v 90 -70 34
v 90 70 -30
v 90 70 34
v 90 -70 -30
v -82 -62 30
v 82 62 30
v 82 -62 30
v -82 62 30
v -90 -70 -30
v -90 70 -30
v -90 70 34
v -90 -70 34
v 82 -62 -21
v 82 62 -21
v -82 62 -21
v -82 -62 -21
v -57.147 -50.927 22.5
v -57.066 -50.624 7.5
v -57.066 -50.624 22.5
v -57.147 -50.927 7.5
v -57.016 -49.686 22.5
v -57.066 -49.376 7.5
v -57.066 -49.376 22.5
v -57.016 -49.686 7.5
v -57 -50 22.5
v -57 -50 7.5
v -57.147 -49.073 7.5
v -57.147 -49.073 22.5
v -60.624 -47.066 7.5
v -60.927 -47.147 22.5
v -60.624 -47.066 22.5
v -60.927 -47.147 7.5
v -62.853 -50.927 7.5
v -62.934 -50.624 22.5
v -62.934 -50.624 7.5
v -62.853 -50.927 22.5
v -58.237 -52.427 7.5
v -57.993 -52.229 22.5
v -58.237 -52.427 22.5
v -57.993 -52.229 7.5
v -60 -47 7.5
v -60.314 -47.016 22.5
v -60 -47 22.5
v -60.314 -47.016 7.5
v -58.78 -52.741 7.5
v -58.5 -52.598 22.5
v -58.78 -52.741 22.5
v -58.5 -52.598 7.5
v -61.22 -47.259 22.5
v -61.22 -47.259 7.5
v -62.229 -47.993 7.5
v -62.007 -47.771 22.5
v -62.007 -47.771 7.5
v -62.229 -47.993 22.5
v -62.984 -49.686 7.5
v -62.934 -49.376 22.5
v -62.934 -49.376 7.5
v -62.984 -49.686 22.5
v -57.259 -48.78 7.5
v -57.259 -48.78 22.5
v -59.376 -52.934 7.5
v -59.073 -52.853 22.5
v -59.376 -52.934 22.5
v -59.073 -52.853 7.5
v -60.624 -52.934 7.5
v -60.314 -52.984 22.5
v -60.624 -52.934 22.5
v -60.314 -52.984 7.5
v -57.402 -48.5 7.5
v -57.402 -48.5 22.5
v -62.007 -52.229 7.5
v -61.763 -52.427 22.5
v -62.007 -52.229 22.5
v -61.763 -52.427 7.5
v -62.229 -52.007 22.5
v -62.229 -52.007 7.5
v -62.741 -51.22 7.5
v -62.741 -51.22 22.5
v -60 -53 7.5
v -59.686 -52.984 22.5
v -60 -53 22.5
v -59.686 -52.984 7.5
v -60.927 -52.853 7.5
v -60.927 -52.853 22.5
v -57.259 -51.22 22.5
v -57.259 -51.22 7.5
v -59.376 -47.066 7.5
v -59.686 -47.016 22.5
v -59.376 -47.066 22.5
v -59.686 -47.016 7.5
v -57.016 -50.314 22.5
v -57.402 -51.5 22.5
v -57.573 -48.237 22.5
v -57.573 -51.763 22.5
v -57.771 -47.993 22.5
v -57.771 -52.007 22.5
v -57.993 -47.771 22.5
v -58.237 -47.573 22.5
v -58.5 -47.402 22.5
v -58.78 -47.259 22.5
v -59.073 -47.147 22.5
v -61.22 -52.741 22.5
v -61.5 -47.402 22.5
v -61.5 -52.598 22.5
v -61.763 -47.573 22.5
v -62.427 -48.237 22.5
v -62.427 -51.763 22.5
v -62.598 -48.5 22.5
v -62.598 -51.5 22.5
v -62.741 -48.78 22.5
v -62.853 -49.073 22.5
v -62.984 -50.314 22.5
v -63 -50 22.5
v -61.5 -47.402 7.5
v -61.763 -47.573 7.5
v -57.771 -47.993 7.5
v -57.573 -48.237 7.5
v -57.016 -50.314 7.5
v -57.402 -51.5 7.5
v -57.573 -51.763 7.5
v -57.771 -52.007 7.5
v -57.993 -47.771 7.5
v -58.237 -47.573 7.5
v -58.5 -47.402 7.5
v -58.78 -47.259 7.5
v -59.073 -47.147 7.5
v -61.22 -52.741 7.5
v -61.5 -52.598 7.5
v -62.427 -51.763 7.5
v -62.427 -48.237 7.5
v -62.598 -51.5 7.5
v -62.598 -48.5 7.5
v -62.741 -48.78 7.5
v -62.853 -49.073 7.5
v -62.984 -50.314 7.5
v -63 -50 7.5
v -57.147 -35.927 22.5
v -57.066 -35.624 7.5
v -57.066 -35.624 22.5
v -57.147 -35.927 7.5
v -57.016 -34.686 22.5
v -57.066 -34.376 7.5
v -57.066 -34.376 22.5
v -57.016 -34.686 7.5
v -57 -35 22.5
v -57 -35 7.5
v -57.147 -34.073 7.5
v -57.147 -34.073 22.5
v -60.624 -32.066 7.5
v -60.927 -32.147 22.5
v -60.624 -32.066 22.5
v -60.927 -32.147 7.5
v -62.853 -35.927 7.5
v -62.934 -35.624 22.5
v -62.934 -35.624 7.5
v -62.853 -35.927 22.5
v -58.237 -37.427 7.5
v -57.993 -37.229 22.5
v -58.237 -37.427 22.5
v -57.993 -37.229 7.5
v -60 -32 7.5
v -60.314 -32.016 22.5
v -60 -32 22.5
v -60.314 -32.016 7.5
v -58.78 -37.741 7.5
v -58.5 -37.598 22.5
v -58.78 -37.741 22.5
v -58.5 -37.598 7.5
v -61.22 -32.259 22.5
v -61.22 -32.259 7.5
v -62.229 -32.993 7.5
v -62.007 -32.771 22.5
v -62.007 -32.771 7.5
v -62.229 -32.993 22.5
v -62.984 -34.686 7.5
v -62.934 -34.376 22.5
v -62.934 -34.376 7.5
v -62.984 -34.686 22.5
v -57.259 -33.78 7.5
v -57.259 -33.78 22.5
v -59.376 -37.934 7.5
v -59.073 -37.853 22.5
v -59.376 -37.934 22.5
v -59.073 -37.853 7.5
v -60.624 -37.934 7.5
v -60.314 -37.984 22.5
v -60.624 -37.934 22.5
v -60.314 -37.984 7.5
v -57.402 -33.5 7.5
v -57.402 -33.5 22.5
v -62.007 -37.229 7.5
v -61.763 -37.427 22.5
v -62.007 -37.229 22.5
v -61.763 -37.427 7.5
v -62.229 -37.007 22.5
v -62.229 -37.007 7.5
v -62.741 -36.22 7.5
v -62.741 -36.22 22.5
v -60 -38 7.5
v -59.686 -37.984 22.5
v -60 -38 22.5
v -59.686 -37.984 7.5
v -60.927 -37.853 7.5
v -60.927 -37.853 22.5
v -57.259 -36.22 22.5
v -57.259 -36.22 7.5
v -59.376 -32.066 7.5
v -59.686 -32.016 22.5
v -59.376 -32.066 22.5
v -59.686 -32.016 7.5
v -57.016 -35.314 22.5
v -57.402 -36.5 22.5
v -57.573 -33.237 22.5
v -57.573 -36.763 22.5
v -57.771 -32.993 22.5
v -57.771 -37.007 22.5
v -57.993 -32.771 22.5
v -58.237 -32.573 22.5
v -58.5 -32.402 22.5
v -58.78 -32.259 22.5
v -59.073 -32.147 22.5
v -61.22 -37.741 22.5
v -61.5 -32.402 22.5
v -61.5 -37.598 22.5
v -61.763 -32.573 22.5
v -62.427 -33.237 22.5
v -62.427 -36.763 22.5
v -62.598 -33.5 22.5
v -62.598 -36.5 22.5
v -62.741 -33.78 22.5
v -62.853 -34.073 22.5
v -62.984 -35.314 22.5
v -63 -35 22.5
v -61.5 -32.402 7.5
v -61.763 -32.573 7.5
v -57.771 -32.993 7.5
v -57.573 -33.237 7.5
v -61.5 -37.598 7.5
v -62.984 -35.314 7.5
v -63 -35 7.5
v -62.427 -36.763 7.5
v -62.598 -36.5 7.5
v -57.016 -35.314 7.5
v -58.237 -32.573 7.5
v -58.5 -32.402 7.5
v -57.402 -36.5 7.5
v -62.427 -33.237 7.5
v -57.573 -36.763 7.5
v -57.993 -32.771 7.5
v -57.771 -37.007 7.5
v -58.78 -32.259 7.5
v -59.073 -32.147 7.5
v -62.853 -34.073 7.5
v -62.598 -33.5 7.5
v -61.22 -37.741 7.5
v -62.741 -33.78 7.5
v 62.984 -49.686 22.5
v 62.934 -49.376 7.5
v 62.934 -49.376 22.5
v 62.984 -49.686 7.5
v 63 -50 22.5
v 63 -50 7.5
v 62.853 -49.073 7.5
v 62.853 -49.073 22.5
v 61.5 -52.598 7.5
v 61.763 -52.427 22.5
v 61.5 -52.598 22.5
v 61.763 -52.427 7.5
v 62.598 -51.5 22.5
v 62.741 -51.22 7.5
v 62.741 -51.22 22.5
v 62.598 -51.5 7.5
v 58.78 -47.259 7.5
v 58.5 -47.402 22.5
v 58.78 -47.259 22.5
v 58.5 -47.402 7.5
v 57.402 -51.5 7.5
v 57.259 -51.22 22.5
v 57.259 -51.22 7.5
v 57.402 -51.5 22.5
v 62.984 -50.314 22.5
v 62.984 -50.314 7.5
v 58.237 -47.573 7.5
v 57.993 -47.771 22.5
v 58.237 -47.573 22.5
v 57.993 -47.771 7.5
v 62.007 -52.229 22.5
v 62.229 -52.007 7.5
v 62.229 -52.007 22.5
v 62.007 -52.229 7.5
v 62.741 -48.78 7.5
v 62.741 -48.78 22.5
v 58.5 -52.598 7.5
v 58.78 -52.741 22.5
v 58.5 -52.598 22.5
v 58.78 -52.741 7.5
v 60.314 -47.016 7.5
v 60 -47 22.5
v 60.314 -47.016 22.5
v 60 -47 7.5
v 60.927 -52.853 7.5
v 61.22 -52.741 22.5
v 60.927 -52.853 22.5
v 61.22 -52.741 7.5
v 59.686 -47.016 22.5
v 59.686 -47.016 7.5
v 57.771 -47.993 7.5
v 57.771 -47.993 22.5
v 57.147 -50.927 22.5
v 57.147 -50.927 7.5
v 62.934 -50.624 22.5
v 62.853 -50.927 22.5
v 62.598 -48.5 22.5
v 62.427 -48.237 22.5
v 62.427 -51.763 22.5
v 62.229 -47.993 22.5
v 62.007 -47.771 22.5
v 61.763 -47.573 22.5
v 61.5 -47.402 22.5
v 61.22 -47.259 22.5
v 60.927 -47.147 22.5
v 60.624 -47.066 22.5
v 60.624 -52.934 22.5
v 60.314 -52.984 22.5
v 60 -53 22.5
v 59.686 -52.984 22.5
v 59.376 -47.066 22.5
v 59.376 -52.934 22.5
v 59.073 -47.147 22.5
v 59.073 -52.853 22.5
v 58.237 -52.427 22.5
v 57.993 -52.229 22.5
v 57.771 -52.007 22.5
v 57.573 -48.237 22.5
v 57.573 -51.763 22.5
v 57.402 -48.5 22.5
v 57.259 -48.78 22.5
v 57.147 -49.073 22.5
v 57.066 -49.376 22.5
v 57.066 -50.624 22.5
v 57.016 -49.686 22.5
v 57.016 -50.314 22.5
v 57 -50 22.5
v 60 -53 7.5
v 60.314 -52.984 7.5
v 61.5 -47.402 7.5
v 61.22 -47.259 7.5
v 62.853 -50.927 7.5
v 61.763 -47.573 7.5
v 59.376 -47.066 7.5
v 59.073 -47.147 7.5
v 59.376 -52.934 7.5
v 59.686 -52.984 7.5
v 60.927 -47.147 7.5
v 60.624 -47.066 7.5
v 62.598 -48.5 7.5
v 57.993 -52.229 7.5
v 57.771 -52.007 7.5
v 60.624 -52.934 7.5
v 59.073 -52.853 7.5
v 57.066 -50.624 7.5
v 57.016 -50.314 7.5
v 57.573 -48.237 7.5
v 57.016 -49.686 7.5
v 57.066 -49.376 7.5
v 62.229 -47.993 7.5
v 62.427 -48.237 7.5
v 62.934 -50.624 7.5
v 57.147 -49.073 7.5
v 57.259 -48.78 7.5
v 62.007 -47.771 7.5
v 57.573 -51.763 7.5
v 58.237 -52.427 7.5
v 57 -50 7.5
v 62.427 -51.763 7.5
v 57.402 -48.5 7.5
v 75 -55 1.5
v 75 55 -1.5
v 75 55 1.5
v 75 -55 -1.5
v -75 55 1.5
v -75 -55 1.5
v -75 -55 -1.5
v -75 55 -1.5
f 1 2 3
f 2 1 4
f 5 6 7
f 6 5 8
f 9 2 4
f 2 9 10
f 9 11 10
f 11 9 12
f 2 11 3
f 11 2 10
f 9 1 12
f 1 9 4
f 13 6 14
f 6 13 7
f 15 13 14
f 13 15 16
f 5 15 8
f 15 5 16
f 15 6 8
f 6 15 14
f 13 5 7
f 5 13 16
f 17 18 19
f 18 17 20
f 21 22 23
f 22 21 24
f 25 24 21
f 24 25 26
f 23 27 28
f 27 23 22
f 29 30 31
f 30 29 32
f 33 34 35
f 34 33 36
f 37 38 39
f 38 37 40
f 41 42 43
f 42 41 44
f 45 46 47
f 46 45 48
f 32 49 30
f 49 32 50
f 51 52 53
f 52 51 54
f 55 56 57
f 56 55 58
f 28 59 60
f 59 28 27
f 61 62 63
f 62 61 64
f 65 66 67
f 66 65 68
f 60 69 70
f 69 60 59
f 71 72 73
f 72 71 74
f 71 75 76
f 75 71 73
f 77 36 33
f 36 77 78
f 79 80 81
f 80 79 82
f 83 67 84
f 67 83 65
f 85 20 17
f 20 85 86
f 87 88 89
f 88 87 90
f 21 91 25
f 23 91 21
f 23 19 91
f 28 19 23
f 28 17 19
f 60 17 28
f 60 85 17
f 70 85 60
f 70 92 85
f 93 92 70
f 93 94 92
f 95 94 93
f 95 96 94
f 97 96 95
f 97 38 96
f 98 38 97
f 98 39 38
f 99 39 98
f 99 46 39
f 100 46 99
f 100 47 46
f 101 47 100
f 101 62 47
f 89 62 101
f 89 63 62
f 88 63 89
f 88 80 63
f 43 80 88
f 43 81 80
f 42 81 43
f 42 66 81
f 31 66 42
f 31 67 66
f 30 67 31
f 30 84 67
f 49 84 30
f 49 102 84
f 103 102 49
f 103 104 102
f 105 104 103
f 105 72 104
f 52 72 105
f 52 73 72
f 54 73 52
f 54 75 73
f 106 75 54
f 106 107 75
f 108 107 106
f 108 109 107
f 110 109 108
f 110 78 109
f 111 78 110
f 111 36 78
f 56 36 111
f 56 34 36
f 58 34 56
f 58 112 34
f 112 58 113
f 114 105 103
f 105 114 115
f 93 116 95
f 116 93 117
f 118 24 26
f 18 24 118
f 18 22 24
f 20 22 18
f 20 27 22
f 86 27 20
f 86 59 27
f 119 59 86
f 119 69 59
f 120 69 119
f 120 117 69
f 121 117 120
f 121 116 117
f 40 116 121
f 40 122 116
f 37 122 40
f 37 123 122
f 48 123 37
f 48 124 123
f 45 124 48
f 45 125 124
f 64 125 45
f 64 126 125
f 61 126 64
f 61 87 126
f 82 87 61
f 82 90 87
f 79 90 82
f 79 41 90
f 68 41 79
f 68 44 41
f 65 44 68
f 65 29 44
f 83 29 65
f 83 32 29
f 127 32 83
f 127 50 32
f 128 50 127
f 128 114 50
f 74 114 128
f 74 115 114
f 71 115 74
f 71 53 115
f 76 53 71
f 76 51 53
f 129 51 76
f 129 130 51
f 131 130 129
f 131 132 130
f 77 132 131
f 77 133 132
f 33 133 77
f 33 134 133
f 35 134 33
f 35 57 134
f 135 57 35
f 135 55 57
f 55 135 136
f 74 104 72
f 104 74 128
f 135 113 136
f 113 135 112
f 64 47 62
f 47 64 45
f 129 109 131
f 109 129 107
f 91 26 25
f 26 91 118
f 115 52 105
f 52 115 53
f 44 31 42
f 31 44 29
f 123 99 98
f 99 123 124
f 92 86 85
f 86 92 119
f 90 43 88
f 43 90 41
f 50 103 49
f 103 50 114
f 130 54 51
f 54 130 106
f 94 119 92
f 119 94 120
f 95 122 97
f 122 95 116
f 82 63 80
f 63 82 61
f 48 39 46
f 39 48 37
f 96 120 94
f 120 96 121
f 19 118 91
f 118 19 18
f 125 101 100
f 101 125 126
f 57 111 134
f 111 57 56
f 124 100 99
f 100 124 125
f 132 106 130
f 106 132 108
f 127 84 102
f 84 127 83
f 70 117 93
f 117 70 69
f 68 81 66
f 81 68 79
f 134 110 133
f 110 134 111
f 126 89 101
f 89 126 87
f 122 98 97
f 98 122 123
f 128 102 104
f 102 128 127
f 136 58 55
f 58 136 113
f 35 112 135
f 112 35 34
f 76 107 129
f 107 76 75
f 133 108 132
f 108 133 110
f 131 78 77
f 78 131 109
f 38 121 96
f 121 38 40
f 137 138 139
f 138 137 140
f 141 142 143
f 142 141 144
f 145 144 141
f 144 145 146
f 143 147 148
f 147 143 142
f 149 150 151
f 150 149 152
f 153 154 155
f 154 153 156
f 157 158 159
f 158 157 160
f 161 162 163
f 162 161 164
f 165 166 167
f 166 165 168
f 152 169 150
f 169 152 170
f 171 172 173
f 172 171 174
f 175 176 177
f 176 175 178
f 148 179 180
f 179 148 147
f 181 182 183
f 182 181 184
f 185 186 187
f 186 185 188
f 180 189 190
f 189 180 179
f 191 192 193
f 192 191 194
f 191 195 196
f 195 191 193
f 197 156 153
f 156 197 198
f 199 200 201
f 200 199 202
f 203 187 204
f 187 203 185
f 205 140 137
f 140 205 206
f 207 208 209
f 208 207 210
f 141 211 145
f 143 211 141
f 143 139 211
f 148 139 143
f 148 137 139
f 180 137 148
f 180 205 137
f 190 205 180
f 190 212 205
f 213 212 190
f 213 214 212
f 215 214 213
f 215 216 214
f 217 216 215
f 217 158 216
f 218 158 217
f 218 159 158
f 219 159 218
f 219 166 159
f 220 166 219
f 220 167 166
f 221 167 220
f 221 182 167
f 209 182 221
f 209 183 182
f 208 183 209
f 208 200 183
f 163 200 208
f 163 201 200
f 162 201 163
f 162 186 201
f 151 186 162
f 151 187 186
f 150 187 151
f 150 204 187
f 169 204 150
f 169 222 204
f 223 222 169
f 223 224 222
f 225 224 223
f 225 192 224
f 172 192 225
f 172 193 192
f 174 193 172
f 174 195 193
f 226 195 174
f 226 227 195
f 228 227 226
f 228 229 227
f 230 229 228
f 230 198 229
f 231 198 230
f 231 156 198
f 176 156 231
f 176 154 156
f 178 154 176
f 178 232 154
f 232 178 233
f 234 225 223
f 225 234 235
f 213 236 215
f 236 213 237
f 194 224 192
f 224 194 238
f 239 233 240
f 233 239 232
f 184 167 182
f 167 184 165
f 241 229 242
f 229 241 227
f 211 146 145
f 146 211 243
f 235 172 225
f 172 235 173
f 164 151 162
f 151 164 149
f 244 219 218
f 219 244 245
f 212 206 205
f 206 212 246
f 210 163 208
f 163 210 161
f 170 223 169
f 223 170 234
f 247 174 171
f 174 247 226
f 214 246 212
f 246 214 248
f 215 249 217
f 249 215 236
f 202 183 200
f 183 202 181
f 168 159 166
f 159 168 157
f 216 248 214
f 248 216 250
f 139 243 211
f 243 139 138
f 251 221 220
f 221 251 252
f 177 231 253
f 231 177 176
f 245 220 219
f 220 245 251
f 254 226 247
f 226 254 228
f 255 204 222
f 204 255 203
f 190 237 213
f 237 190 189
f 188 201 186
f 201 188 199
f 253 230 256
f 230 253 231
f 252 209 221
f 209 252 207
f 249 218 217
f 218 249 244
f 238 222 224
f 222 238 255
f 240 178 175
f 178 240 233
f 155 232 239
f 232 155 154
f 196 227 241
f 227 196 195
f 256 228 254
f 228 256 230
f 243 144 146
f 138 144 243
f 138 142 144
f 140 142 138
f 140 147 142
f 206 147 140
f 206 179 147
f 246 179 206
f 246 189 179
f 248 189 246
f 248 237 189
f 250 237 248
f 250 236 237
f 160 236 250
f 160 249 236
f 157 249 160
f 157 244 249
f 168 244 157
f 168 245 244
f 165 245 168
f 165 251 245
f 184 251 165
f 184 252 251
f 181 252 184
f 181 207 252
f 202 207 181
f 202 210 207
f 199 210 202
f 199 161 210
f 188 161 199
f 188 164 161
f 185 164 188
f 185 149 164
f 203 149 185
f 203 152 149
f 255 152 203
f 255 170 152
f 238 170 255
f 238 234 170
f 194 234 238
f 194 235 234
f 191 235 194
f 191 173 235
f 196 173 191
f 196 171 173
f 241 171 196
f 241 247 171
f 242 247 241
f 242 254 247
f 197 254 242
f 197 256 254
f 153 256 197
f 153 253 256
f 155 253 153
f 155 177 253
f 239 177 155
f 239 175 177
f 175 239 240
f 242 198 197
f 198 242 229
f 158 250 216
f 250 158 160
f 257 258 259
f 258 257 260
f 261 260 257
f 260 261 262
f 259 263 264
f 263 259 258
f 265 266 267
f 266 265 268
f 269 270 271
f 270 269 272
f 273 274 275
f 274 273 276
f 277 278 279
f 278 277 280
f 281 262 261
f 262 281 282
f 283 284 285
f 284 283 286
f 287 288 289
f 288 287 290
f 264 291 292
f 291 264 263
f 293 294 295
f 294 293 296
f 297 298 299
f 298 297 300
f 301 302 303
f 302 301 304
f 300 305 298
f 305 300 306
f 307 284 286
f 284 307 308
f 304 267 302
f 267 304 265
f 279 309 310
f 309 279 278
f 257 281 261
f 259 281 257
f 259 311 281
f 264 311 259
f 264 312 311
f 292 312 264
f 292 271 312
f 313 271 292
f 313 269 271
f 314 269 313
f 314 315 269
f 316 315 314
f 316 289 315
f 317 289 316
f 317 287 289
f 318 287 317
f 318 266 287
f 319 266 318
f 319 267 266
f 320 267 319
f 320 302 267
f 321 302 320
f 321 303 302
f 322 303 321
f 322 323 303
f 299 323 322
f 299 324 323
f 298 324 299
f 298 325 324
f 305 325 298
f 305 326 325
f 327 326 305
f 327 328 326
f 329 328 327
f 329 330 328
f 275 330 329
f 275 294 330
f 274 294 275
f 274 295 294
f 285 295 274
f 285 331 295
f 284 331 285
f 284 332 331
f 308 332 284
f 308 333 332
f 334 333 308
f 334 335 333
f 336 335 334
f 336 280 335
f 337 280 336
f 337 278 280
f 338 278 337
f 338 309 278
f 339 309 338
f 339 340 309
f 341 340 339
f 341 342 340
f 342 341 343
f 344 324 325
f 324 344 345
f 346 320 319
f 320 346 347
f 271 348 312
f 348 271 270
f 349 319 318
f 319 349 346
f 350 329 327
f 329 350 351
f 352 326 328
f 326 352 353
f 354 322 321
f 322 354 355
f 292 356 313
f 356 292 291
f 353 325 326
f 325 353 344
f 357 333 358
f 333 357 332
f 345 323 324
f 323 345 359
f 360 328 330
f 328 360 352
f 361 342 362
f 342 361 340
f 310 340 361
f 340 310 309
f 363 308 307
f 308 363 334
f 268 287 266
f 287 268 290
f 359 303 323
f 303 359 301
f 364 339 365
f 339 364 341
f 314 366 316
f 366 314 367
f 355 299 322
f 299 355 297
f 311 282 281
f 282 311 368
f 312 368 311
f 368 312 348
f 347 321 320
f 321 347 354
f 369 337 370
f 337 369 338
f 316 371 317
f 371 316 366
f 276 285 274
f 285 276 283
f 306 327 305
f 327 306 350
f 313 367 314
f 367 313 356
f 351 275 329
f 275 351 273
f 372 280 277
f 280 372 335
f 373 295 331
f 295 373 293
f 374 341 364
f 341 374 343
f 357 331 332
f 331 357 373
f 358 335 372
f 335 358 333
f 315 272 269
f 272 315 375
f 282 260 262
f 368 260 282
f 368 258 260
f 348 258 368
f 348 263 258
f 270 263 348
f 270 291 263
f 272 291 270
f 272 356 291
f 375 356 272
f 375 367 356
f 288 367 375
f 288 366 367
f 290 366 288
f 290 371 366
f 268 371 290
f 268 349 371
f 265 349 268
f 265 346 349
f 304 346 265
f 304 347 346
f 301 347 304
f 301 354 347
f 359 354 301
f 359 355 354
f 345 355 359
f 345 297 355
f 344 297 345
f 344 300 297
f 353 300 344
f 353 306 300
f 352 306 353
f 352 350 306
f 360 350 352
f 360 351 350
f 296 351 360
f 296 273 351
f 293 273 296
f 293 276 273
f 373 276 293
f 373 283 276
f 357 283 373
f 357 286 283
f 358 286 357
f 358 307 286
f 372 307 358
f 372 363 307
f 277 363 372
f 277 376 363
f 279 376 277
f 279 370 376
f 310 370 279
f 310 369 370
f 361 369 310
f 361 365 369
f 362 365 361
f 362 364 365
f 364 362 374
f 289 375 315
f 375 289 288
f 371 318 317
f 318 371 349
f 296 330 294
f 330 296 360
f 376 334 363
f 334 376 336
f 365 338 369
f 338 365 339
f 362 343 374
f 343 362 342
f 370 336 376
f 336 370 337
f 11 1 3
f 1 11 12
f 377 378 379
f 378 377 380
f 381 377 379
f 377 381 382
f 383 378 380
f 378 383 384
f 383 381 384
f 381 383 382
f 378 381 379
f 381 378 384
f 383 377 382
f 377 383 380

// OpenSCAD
// ============================================================================
// DiveGuard heavy-class ROV - rov-platform/HLD.md
// Central Control & PDB Module - power distribution + hydrophone buffer interconnect (Phase 2)
//
// Lifted from the design dialogue originally pasted into BACKLOG.md on main
// (2026-08 batch), preserved verbatim as authored there.
//
// Update 2026-08-08: OpenSCAD IS available in this sandbox (installed via apt
// for this verification pass - previously assumed unavailable; that
// assumption was wrong, corrected repo-wide, see BACKLOG.md). This file has
// been rendered (`openscad -o out.stl this.scad`) and confirmed a valid
// 2-manifold solid ("Simple: yes" in the render log) - real geometric
// validity, not just a paren-balance check. STEP export and an independent
// engineer re-check of dimension/tolerance claims before any
// part is fabricated from it. Physically mounts between hulls 02/03 per HLD.md Phase 2.
// ============================================================================

// ==========================================
// DIVEGUARD: Central Control & PDB Module
// Material: Anodized Al6061 / Polycarbonate Lid
// ==========================================

$fn = 60;

module central_control_unit() {
    // 1. Алюминиевое шасси блока
    color("DimGray")
    difference() {
        cube([180, 140, 60], center = true);
        // Внутреннее пространство для плат
        translate([0, 0, 5])
            cube([164, 124, 52], center = true);
    }

    // 2. Прозрачная крышка из поликарбоната
    color("Cyan", 0.4)
    translate([0, 0, 32])
        cube([180, 140, 4], center = true);

    // 3. Плата распределения питания (PDB) внутри
    color("Green")
    translate([0, 0, 0])
        cube([150, 110, 3], center = true);

    // 4. Силовые клеммники M4
    color("Gold") {
        translate([-60, -50, 15]) cylinder(h=15, r=3, center=true);
        translate([-60, -35, 15]) cylinder(h=15, r=3, center=true);
        translate([60, -50, 15]) cylinder(h=15, r=3, center=true);
    }
}

central_control_unit();
